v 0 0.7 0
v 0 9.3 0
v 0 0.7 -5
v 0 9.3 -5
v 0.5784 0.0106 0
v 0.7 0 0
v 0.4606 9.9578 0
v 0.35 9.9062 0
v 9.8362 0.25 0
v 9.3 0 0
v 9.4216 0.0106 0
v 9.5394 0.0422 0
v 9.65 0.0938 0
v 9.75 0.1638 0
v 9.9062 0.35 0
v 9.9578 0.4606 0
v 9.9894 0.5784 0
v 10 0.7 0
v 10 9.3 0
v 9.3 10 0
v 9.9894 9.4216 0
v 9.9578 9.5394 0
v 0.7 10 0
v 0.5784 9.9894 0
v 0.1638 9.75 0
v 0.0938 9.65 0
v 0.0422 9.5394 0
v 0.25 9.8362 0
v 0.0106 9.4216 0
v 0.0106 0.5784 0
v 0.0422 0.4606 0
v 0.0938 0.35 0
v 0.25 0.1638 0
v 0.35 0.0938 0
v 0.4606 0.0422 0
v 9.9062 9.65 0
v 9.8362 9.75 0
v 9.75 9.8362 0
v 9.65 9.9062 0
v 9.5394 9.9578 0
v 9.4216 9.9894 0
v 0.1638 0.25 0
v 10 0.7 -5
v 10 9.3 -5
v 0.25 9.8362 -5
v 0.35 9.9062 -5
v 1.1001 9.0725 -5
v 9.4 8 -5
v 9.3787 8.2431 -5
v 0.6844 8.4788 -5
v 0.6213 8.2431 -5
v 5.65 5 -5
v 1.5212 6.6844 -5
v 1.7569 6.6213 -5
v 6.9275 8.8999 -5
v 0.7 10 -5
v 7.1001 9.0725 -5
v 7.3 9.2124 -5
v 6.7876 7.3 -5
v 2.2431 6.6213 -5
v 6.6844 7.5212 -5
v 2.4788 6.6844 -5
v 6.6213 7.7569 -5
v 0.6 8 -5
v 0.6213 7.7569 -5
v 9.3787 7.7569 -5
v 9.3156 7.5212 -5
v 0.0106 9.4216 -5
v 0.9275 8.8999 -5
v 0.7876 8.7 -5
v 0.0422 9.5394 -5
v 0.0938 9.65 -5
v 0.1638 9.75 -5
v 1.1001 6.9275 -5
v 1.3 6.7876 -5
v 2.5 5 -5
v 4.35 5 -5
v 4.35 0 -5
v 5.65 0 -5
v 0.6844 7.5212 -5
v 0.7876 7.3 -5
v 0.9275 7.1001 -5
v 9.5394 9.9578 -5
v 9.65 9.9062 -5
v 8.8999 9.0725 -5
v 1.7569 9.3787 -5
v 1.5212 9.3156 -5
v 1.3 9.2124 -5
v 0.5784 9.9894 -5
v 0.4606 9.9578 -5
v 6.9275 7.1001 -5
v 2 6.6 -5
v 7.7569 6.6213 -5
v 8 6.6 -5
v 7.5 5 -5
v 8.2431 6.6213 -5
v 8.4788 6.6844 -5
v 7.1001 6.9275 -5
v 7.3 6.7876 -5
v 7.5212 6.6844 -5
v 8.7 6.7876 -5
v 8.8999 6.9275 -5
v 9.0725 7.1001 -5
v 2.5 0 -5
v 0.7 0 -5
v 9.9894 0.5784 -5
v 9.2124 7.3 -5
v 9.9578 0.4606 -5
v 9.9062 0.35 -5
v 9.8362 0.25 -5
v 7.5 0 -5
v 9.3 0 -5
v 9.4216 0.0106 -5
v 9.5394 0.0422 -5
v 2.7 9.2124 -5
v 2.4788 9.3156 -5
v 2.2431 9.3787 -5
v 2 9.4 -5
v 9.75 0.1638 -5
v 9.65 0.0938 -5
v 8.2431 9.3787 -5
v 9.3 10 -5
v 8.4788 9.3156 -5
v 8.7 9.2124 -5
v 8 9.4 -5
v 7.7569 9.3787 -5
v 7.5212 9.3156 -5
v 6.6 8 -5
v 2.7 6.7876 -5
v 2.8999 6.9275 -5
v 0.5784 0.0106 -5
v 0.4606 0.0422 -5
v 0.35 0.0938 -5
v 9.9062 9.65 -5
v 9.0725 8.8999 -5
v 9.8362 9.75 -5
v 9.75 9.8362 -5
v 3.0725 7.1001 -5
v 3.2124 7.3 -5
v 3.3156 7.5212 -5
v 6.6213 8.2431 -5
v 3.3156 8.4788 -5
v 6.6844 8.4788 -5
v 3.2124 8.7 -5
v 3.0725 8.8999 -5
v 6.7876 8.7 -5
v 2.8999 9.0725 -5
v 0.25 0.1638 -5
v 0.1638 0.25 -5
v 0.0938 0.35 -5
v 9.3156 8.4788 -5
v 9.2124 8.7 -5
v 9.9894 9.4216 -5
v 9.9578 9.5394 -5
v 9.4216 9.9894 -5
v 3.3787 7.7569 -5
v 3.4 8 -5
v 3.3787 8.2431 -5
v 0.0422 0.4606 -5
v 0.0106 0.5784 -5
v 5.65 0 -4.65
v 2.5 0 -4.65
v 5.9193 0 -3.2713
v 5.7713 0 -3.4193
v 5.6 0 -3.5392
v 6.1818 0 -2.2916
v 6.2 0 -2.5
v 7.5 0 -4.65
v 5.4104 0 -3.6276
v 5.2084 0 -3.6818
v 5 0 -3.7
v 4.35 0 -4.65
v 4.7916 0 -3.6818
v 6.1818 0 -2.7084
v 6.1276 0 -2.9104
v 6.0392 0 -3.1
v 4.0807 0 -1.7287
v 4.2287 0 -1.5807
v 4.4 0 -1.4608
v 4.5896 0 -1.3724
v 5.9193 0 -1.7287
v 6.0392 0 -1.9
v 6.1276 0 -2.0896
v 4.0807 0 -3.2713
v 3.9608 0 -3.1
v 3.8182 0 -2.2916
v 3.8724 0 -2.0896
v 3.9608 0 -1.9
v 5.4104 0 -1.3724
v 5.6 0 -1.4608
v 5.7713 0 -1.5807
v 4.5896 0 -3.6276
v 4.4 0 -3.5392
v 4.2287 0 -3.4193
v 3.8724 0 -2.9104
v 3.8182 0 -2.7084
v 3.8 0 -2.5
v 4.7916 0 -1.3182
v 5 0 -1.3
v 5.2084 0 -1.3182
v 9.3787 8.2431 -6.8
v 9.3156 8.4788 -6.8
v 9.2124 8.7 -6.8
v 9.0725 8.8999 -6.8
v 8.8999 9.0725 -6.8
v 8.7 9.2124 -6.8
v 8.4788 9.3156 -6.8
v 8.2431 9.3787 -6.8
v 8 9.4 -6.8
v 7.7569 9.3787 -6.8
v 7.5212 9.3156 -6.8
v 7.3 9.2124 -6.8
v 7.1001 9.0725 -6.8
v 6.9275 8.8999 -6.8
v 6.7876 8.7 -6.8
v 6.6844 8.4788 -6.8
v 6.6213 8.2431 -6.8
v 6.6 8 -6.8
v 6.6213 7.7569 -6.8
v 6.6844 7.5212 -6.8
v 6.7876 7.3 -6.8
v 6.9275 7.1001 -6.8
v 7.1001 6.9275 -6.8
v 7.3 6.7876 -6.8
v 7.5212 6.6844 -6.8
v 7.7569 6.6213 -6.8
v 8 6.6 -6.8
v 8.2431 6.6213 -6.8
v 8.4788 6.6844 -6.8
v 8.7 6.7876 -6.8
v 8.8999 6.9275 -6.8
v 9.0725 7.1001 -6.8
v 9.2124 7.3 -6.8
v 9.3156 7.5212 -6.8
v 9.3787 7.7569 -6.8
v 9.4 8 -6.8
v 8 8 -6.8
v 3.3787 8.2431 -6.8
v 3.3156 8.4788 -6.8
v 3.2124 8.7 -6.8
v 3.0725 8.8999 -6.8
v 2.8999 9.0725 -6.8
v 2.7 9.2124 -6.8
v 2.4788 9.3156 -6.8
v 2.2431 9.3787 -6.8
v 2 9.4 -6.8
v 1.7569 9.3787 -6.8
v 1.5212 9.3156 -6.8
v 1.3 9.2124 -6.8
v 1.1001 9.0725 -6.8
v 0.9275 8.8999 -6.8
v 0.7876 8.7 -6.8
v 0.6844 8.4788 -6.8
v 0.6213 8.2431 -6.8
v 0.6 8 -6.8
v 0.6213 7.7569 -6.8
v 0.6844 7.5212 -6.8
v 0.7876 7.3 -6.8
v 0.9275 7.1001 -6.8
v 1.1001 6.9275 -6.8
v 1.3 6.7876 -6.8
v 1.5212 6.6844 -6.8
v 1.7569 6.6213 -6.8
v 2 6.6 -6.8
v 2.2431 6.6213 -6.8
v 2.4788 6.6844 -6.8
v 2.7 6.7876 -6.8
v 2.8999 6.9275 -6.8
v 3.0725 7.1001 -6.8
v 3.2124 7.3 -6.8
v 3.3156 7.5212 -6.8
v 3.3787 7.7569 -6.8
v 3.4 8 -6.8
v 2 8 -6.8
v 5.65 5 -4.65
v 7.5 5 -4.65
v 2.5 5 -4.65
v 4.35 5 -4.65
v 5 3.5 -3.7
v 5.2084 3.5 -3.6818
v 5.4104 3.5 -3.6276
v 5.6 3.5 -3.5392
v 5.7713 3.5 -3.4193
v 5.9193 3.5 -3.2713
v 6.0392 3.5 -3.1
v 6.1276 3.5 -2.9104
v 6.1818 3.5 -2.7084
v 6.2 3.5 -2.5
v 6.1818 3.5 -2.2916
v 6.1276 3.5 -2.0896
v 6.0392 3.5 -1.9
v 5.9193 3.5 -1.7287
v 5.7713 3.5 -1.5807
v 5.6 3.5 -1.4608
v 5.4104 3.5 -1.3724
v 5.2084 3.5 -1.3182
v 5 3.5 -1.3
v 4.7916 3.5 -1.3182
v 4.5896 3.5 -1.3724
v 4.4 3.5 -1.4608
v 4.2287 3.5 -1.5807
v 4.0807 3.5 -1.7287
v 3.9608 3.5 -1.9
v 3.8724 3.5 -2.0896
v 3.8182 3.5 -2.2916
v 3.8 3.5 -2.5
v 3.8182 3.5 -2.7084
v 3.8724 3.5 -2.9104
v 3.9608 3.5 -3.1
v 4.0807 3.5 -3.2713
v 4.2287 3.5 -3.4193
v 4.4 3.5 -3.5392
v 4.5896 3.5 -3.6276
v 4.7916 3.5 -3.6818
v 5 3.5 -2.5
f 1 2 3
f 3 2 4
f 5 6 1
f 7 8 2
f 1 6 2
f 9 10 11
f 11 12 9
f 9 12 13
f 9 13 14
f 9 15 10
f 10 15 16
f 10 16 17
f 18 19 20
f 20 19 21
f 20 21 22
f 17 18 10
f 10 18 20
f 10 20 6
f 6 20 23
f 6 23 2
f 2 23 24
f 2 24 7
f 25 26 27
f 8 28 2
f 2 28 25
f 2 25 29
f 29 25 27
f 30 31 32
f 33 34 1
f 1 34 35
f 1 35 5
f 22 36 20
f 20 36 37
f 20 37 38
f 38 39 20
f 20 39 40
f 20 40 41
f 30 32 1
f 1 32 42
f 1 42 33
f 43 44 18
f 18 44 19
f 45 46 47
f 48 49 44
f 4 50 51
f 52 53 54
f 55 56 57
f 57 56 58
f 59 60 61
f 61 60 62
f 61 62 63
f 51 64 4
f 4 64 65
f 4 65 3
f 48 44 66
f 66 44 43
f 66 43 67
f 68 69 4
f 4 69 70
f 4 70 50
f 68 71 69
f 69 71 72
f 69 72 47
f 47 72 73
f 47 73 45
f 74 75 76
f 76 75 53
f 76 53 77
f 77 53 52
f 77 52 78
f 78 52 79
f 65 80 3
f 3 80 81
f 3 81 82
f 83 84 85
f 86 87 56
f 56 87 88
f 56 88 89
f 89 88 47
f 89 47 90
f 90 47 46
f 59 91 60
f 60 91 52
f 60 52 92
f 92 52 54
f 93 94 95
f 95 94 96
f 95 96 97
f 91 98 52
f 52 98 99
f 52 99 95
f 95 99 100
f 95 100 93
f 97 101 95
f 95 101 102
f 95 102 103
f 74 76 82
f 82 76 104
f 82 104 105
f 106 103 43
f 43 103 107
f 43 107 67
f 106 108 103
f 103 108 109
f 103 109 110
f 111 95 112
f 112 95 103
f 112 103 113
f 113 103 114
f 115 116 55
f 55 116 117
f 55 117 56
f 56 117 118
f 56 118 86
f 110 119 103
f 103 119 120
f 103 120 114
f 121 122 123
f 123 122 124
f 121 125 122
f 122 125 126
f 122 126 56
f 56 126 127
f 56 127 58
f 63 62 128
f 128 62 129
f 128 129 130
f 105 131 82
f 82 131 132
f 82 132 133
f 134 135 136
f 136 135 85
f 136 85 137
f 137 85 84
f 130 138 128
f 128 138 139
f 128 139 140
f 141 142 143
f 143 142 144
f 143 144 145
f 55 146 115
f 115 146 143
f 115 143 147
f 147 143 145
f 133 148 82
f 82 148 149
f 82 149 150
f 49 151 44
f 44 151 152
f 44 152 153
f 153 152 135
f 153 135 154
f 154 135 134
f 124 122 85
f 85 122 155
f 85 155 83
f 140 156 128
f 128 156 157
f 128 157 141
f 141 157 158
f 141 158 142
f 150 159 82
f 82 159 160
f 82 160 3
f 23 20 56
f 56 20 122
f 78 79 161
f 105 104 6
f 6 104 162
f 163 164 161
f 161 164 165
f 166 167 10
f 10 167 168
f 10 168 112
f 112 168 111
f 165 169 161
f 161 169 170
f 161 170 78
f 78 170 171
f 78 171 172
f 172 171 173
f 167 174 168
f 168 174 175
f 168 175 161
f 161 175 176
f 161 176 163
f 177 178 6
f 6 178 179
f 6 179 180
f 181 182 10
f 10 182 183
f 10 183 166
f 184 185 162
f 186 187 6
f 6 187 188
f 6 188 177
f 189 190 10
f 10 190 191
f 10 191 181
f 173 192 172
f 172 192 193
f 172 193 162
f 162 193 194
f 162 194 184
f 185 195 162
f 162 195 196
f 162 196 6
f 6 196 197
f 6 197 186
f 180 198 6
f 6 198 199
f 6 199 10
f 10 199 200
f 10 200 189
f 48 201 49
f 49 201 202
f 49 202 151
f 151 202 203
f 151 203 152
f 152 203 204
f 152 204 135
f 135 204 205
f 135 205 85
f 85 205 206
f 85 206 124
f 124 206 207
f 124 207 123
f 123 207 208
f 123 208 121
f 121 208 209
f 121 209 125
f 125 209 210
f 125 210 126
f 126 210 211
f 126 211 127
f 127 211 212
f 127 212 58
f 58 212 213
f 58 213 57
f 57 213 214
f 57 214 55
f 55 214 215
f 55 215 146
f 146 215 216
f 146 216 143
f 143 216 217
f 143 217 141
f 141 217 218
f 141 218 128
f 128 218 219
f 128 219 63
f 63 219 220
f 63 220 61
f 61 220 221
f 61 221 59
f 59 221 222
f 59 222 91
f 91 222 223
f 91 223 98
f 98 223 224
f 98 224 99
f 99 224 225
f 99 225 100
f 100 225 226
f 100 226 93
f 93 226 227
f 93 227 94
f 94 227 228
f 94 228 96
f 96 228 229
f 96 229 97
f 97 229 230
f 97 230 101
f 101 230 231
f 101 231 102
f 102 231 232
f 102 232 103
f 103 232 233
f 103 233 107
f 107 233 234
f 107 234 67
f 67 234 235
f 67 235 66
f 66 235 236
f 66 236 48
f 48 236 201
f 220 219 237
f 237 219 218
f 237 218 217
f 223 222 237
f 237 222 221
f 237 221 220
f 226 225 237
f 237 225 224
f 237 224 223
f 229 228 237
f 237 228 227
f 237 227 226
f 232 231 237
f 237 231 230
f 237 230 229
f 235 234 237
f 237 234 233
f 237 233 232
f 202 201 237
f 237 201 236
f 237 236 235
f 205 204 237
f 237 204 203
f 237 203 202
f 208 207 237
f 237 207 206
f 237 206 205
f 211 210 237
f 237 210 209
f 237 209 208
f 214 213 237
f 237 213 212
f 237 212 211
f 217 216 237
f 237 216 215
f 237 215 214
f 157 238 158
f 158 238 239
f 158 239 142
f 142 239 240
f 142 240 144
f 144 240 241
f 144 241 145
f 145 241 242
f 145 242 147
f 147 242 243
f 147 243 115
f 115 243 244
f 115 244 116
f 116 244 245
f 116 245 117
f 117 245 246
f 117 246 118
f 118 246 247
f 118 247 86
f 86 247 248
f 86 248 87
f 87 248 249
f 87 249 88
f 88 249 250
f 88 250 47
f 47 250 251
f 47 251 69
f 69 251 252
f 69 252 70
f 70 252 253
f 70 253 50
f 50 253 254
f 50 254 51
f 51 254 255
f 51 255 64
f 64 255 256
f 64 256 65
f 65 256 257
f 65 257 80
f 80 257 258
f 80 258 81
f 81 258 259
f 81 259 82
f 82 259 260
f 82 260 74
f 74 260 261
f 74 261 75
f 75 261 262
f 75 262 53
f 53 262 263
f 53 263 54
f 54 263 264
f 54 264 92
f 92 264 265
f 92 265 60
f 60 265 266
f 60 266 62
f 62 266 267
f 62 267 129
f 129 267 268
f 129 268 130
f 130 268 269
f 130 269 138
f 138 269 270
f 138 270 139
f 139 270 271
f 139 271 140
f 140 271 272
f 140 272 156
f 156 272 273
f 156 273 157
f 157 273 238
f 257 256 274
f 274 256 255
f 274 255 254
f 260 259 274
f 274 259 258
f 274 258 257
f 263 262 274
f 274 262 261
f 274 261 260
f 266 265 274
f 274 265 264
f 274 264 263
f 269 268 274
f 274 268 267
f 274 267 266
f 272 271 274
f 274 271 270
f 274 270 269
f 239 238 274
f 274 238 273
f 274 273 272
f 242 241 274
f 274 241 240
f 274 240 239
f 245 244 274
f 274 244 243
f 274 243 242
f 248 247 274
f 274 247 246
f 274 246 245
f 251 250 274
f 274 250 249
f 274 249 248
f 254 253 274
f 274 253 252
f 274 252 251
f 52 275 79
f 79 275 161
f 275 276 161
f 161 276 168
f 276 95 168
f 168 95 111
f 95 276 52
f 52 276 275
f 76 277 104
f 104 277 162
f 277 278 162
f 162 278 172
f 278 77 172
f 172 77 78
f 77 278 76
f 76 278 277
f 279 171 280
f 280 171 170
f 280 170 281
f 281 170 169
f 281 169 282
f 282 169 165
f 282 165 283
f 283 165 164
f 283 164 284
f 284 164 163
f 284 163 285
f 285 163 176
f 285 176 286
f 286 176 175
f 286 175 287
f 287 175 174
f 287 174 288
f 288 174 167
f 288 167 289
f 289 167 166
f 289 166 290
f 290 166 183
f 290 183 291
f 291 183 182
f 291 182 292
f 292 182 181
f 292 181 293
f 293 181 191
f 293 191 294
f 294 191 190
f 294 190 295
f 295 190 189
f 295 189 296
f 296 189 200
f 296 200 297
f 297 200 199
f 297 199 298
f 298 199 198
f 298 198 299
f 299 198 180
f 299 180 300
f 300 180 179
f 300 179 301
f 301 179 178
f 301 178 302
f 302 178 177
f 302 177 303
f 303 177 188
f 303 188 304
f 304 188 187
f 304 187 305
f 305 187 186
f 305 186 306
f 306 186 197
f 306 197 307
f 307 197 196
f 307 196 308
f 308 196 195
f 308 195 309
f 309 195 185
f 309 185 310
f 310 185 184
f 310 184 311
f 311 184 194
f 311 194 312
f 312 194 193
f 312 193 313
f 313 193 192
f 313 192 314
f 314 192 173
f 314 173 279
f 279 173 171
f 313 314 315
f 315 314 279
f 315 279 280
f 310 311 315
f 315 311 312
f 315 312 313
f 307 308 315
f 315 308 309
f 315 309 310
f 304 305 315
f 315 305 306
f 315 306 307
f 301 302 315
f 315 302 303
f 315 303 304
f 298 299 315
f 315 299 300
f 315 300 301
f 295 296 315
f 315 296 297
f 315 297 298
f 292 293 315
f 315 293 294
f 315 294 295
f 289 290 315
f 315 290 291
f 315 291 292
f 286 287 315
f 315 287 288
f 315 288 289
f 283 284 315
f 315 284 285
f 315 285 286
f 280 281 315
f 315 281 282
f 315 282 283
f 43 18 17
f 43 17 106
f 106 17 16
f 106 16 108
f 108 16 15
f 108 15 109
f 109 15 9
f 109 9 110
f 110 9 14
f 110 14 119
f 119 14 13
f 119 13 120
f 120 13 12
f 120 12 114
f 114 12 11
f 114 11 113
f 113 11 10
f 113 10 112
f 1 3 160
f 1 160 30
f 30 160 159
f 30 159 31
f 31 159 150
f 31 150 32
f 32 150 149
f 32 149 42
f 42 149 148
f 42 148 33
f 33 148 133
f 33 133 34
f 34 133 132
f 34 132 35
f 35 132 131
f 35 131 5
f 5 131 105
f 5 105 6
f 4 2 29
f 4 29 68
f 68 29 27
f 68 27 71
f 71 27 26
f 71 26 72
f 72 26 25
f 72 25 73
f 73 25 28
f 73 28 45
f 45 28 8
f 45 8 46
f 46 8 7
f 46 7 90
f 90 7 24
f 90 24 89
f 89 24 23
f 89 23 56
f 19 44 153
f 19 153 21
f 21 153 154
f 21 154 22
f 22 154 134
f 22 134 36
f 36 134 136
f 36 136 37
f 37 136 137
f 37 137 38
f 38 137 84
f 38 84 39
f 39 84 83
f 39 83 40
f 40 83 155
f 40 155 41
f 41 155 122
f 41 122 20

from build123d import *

# Parameters (mm, degrees)
SKETCH2_W           = 10
SKETCH2_H           = 5
BOSS_EXTRUDE2_DEPTH = 10
SKETCH3_R           = 1.4
BOSS_EXTRUDE3_DEPTH = 1.8
SKETCH4_W           = 1.85
SKETCH4_H           = 0.35
CUT_EXTRUDE1_DEPTH  = 5
SKETCH5_R           = 1.2
CUT_EXTRUDE2_DEPTH  = 3.5
FILLET1_R           = 0.7


with BuildPart() as part:
    # Sketch2 → Boss-Extrude2 (new body)
    with BuildSketch(Plane(origin=(0, 0, 0), x_dir=(1, 0, 0), z_dir=(0, 1, 0))):
        with Locations((5, 2.5)):
            Rectangle(SKETCH2_W, SKETCH2_H)
    extrude(amount=BOSS_EXTRUDE2_DEPTH)

    # Sketch3 → Boss-Extrude3 (add)
    with BuildSketch(Plane(origin=(0, 0, -5), x_dir=(-1, 0, 0), z_dir=(0, 0, -1))):
        with Locations(Location((-8, 8, 0), (0, 0, 180))):
            Circle(SKETCH3_R)
        with Locations(Location((-2, 8, 0), (0, 0, 180))):
            Circle(SKETCH3_R)
    extrude(amount=BOSS_EXTRUDE3_DEPTH)

    # Sketch4 → Cut-Extrude1 (cut)
    with BuildSketch(Plane.XZ):
        with Locations((3.425, -4.825)):
            Rectangle(SKETCH4_W, SKETCH4_H)
        with Locations((6.575, -4.825)):
            Rectangle(SKETCH4_W, SKETCH4_H)
    extrude(amount=-CUT_EXTRUDE1_DEPTH, mode=Mode.SUBTRACT)

    # Sketch5 → Cut-Extrude2 (cut)
    with BuildSketch(Plane.XZ):
        with Locations(Location((5, -2.5, 0), (0, 0, 270))):
            Circle(SKETCH5_R)
    extrude(amount=-CUT_EXTRUDE2_DEPTH, mode=Mode.SUBTRACT)

    # Fillet1
    fillet1_edges = [part.edges().sort_by_distance(p)[0] for p in [
        (10, 10, -2.5),
        (0, 10, -2.5),
        (10, 0, -2.5),
        (0, 0, -2.5),
    ]]
    fillet(fillet1_edges, radius=FILLET1_R)


solid = part.part
